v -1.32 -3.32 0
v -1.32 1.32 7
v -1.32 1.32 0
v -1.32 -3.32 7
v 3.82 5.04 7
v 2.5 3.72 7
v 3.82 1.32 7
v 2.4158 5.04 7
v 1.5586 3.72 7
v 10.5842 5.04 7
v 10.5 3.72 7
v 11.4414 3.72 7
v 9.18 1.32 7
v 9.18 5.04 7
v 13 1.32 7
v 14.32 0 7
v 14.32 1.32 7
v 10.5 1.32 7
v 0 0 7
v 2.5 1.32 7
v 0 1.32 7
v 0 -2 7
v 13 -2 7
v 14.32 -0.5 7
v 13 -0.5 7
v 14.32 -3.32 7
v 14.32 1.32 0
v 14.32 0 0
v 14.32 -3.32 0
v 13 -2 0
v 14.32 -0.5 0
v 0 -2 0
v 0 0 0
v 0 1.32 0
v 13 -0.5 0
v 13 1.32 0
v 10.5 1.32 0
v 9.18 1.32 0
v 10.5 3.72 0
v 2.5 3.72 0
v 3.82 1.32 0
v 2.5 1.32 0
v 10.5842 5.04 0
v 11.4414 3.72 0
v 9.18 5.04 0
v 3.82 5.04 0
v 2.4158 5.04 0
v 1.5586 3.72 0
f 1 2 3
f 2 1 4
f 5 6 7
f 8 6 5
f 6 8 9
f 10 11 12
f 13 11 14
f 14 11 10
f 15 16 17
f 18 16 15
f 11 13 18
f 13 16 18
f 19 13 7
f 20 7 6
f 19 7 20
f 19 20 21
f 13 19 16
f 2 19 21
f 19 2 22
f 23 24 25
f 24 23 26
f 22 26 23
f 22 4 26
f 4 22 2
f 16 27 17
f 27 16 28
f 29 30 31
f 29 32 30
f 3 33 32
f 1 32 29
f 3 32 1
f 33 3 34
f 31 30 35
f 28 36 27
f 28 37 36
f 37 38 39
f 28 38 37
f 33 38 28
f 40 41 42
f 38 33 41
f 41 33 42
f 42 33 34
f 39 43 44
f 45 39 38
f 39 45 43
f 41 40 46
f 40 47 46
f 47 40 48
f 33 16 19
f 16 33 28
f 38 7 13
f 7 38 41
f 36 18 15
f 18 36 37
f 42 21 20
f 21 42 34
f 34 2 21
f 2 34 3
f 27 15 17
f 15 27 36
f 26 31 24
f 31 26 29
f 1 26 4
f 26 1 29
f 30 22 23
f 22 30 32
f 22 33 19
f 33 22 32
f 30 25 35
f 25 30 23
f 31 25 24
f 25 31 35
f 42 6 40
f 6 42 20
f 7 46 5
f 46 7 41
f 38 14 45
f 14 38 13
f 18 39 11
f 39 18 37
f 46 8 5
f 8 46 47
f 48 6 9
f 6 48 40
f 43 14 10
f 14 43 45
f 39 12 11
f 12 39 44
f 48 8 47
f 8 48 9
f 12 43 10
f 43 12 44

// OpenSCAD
// RebeliX
//
// cable-holder
// GNU GPL v3
// Martin Neruda <neruda@reprap4u.cz>
// http://www.reprap4u.cz

extrusion_width = 0.66;

width = 13;
height = 7;

// Vyrez v hlinikovem profilu
space = 8.2;

difference(){
  union(){
	translate([-2*extrusion_width,0,0]) cube([width+4*extrusion_width,2*extrusion_width,height]);
	translate([-2*extrusion_width,-2*extrusion_width-2,0]) cube([width+4*extrusion_width,2*extrusion_width,height]);
	translate([-2*extrusion_width,-2*extrusion_width-2,0]) cube([2*extrusion_width,4*extrusion_width+2,height]);
	translate([width,-2*extrusion_width-2,0]) cube([2*extrusion_width,2*extrusion_width+2*3/4,height]);
	translate([width/2 - space/2+0.1,2*extrusion_width,0]) cube([2*extrusion_width,2*extrusion_width+2.2,height]);
	translate([width/2 + space/2 - 2*extrusion_width-0.1,2*extrusion_width,0]) cube([2*extrusion_width,2*extrusion_width+2.2,height]);

	translate([width/2 - space/2 + 2*extrusion_width+0.1,2*extrusion_width + 2.4 + 2*extrusion_width,0]) rotate([0,0,-180]) cube([2.5,2*extrusion_width,height]);
	translate([width/2 + space/2 - 2*extrusion_width-0.1,2*extrusion_width + 2.4,0]) cube([2.5,2*extrusion_width,height]);
	}
	// Seriznuti "pacicek"
	translate([0,2*extrusion_width,-0.1]) rotate([0,0,57]) cube([width,width,width]);
	translate([width,2*extrusion_width,-0.1]) rotate([0,0,33]) cube([width,width,width]);
}	
